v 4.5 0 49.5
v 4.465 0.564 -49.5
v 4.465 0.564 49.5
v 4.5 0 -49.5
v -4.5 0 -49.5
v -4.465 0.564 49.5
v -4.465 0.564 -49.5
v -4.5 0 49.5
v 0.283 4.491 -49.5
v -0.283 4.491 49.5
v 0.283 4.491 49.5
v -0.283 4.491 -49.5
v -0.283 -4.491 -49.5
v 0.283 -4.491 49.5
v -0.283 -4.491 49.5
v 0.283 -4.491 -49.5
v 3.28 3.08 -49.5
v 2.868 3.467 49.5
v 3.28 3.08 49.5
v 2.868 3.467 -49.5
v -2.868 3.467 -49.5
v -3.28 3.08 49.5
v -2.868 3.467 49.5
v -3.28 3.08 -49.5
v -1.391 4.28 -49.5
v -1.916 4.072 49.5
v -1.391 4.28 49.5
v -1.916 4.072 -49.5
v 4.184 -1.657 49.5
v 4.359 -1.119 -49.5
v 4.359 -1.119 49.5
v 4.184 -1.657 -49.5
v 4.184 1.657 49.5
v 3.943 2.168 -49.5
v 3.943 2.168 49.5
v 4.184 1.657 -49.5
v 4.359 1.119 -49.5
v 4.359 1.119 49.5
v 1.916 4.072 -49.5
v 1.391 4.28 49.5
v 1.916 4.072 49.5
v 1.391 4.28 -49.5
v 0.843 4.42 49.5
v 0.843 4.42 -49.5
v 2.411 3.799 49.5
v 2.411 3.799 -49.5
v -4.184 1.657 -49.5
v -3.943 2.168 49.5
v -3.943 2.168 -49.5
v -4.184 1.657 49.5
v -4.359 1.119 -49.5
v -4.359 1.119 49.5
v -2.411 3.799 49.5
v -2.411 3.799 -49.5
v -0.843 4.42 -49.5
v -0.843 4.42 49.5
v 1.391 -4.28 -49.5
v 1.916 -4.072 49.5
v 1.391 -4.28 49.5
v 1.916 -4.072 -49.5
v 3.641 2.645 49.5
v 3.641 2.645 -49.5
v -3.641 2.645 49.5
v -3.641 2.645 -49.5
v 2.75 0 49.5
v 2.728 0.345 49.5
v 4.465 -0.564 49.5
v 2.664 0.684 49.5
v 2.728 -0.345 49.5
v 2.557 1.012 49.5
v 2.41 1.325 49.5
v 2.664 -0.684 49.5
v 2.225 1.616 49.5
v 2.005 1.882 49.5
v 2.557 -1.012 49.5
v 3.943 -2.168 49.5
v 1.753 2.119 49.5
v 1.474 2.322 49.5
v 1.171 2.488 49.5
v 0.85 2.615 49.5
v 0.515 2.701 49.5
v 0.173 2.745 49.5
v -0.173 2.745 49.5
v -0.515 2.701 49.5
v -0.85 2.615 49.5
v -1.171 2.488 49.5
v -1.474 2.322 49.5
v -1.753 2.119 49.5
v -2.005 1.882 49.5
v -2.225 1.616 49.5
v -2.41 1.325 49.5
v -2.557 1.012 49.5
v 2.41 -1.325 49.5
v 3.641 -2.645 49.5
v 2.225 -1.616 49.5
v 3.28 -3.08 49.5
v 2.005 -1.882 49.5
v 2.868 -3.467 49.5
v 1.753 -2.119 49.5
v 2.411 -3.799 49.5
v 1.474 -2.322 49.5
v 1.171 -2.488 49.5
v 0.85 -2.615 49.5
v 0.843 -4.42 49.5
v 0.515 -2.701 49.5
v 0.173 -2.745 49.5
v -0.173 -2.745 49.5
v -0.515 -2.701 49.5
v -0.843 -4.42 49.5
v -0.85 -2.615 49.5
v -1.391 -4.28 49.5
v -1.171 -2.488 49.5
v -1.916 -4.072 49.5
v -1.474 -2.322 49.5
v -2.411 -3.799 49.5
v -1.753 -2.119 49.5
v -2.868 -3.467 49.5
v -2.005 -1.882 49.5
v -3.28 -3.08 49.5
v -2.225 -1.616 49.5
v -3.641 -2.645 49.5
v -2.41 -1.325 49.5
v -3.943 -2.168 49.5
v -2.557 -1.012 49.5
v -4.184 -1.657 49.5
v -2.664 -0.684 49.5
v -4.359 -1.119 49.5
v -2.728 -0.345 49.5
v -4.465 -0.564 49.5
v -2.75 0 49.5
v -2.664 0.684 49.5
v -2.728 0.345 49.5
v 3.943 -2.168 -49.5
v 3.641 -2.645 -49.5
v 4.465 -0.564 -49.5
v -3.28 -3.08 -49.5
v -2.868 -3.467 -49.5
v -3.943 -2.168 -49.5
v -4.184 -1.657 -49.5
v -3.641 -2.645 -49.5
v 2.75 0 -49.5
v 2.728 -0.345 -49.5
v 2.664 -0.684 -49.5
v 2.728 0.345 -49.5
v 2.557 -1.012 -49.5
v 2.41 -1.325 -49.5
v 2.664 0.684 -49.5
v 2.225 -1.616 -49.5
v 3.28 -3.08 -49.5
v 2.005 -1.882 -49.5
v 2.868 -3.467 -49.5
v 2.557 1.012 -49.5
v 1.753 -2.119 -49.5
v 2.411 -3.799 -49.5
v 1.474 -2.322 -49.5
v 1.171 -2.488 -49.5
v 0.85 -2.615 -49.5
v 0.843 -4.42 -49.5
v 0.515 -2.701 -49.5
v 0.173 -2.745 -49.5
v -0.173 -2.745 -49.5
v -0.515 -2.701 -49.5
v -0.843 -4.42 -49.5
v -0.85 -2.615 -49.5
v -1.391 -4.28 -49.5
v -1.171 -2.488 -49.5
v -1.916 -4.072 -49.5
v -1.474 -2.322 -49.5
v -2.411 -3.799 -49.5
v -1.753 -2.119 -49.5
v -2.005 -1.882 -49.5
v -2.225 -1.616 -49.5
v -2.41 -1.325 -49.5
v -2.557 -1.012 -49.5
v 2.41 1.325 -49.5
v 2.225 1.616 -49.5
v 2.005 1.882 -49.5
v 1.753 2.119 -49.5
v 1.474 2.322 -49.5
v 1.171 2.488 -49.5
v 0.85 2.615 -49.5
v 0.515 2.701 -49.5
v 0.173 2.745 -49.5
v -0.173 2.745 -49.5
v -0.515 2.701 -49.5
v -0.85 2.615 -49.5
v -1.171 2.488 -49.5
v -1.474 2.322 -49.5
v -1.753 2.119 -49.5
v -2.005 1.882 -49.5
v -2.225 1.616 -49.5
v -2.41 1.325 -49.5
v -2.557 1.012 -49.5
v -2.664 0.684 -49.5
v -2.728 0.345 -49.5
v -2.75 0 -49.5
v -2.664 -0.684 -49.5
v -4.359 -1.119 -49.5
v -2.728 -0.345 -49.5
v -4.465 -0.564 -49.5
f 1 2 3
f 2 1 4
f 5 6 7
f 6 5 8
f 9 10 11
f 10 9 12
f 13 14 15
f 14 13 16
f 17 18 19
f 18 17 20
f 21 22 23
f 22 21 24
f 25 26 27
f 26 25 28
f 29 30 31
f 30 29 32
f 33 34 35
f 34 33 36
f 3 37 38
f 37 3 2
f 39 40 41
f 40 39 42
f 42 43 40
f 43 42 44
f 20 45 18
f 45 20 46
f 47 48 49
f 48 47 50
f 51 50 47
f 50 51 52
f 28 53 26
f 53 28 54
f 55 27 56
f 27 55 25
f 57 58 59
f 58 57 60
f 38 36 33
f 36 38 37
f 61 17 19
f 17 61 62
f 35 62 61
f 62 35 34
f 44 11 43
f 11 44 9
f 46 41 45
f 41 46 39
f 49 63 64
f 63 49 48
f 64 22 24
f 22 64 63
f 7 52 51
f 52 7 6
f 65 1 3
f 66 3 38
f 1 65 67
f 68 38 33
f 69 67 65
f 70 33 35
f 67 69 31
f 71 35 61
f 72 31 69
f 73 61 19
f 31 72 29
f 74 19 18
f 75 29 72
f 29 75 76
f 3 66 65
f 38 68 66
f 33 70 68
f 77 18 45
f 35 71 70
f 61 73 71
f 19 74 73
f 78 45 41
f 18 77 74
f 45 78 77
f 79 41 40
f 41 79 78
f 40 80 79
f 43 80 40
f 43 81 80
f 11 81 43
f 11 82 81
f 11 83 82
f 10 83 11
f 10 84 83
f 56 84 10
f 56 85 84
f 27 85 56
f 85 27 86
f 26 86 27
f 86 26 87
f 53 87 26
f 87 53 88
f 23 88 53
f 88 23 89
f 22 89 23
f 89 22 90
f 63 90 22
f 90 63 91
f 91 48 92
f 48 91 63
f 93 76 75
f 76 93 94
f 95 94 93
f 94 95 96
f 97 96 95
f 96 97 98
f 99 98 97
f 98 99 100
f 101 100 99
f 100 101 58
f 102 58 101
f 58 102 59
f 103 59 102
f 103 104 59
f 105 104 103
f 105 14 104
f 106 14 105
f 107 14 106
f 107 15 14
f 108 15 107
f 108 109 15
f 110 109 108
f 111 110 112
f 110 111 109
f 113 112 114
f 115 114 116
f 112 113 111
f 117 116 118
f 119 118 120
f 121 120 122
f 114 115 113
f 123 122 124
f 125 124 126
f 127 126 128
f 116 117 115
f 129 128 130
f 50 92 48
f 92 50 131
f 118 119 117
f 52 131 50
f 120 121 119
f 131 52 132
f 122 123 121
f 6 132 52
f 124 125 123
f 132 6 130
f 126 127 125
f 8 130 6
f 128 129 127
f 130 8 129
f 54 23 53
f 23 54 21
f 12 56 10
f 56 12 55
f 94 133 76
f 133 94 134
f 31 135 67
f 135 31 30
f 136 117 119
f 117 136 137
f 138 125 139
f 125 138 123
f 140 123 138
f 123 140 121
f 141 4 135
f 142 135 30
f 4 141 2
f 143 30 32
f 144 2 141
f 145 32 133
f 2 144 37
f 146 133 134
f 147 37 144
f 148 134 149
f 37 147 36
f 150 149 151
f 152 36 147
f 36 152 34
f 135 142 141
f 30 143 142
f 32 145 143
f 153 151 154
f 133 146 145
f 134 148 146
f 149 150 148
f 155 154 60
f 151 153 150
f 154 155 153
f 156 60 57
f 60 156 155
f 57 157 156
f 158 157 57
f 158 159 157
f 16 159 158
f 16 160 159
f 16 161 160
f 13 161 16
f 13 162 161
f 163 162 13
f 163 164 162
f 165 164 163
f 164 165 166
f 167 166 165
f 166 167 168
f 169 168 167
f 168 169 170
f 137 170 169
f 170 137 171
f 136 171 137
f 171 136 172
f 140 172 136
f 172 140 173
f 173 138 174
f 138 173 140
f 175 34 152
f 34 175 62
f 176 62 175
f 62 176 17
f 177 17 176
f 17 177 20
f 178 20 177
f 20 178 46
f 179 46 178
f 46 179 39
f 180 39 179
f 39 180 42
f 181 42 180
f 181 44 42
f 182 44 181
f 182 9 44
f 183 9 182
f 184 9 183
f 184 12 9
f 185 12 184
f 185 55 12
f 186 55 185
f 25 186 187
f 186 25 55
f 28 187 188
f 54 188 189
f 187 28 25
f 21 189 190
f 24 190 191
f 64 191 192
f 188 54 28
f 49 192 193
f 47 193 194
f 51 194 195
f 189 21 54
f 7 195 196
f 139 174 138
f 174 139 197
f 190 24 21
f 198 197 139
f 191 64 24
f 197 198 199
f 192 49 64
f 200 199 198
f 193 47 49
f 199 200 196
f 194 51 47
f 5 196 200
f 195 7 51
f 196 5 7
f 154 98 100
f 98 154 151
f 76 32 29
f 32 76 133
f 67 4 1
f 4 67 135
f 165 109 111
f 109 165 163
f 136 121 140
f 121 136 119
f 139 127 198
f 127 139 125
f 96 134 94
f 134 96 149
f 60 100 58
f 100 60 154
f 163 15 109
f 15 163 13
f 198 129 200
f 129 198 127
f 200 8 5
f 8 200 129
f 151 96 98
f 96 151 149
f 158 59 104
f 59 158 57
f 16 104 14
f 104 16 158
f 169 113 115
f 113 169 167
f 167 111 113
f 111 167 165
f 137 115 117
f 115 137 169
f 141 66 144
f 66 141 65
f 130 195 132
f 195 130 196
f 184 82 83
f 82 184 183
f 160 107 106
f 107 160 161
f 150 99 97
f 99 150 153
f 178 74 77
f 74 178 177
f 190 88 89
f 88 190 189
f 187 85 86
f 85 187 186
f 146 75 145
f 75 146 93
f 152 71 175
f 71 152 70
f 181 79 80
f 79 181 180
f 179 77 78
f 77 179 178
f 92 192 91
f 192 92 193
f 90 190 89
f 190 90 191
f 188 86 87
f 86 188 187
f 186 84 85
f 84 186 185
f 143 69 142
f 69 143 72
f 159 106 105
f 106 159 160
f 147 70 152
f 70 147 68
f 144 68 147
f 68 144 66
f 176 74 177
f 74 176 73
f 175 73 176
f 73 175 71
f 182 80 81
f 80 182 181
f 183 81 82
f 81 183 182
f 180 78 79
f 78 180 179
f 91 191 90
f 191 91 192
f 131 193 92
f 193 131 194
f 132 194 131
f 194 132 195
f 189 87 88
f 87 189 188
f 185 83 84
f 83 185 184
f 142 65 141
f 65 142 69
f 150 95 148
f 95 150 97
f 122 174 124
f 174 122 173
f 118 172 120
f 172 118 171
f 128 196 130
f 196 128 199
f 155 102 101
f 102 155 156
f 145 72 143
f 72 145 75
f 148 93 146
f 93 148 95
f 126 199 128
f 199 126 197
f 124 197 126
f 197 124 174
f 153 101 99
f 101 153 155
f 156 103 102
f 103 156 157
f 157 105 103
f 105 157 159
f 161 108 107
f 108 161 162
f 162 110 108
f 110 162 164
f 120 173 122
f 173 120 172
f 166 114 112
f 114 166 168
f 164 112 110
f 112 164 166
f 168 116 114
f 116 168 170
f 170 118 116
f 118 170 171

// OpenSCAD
$fn = 50;


difference() {
	union() {
		translate(v = [0, 0, -49.5000000000]) {
			cylinder(h = 99, r = 4.5000000000);
		}
	}
	union() {
		translate(v = [0, 0, -100.0000000000]) {
			cylinder(h = 200, r = 2.7500000000);
		}
	}
}
